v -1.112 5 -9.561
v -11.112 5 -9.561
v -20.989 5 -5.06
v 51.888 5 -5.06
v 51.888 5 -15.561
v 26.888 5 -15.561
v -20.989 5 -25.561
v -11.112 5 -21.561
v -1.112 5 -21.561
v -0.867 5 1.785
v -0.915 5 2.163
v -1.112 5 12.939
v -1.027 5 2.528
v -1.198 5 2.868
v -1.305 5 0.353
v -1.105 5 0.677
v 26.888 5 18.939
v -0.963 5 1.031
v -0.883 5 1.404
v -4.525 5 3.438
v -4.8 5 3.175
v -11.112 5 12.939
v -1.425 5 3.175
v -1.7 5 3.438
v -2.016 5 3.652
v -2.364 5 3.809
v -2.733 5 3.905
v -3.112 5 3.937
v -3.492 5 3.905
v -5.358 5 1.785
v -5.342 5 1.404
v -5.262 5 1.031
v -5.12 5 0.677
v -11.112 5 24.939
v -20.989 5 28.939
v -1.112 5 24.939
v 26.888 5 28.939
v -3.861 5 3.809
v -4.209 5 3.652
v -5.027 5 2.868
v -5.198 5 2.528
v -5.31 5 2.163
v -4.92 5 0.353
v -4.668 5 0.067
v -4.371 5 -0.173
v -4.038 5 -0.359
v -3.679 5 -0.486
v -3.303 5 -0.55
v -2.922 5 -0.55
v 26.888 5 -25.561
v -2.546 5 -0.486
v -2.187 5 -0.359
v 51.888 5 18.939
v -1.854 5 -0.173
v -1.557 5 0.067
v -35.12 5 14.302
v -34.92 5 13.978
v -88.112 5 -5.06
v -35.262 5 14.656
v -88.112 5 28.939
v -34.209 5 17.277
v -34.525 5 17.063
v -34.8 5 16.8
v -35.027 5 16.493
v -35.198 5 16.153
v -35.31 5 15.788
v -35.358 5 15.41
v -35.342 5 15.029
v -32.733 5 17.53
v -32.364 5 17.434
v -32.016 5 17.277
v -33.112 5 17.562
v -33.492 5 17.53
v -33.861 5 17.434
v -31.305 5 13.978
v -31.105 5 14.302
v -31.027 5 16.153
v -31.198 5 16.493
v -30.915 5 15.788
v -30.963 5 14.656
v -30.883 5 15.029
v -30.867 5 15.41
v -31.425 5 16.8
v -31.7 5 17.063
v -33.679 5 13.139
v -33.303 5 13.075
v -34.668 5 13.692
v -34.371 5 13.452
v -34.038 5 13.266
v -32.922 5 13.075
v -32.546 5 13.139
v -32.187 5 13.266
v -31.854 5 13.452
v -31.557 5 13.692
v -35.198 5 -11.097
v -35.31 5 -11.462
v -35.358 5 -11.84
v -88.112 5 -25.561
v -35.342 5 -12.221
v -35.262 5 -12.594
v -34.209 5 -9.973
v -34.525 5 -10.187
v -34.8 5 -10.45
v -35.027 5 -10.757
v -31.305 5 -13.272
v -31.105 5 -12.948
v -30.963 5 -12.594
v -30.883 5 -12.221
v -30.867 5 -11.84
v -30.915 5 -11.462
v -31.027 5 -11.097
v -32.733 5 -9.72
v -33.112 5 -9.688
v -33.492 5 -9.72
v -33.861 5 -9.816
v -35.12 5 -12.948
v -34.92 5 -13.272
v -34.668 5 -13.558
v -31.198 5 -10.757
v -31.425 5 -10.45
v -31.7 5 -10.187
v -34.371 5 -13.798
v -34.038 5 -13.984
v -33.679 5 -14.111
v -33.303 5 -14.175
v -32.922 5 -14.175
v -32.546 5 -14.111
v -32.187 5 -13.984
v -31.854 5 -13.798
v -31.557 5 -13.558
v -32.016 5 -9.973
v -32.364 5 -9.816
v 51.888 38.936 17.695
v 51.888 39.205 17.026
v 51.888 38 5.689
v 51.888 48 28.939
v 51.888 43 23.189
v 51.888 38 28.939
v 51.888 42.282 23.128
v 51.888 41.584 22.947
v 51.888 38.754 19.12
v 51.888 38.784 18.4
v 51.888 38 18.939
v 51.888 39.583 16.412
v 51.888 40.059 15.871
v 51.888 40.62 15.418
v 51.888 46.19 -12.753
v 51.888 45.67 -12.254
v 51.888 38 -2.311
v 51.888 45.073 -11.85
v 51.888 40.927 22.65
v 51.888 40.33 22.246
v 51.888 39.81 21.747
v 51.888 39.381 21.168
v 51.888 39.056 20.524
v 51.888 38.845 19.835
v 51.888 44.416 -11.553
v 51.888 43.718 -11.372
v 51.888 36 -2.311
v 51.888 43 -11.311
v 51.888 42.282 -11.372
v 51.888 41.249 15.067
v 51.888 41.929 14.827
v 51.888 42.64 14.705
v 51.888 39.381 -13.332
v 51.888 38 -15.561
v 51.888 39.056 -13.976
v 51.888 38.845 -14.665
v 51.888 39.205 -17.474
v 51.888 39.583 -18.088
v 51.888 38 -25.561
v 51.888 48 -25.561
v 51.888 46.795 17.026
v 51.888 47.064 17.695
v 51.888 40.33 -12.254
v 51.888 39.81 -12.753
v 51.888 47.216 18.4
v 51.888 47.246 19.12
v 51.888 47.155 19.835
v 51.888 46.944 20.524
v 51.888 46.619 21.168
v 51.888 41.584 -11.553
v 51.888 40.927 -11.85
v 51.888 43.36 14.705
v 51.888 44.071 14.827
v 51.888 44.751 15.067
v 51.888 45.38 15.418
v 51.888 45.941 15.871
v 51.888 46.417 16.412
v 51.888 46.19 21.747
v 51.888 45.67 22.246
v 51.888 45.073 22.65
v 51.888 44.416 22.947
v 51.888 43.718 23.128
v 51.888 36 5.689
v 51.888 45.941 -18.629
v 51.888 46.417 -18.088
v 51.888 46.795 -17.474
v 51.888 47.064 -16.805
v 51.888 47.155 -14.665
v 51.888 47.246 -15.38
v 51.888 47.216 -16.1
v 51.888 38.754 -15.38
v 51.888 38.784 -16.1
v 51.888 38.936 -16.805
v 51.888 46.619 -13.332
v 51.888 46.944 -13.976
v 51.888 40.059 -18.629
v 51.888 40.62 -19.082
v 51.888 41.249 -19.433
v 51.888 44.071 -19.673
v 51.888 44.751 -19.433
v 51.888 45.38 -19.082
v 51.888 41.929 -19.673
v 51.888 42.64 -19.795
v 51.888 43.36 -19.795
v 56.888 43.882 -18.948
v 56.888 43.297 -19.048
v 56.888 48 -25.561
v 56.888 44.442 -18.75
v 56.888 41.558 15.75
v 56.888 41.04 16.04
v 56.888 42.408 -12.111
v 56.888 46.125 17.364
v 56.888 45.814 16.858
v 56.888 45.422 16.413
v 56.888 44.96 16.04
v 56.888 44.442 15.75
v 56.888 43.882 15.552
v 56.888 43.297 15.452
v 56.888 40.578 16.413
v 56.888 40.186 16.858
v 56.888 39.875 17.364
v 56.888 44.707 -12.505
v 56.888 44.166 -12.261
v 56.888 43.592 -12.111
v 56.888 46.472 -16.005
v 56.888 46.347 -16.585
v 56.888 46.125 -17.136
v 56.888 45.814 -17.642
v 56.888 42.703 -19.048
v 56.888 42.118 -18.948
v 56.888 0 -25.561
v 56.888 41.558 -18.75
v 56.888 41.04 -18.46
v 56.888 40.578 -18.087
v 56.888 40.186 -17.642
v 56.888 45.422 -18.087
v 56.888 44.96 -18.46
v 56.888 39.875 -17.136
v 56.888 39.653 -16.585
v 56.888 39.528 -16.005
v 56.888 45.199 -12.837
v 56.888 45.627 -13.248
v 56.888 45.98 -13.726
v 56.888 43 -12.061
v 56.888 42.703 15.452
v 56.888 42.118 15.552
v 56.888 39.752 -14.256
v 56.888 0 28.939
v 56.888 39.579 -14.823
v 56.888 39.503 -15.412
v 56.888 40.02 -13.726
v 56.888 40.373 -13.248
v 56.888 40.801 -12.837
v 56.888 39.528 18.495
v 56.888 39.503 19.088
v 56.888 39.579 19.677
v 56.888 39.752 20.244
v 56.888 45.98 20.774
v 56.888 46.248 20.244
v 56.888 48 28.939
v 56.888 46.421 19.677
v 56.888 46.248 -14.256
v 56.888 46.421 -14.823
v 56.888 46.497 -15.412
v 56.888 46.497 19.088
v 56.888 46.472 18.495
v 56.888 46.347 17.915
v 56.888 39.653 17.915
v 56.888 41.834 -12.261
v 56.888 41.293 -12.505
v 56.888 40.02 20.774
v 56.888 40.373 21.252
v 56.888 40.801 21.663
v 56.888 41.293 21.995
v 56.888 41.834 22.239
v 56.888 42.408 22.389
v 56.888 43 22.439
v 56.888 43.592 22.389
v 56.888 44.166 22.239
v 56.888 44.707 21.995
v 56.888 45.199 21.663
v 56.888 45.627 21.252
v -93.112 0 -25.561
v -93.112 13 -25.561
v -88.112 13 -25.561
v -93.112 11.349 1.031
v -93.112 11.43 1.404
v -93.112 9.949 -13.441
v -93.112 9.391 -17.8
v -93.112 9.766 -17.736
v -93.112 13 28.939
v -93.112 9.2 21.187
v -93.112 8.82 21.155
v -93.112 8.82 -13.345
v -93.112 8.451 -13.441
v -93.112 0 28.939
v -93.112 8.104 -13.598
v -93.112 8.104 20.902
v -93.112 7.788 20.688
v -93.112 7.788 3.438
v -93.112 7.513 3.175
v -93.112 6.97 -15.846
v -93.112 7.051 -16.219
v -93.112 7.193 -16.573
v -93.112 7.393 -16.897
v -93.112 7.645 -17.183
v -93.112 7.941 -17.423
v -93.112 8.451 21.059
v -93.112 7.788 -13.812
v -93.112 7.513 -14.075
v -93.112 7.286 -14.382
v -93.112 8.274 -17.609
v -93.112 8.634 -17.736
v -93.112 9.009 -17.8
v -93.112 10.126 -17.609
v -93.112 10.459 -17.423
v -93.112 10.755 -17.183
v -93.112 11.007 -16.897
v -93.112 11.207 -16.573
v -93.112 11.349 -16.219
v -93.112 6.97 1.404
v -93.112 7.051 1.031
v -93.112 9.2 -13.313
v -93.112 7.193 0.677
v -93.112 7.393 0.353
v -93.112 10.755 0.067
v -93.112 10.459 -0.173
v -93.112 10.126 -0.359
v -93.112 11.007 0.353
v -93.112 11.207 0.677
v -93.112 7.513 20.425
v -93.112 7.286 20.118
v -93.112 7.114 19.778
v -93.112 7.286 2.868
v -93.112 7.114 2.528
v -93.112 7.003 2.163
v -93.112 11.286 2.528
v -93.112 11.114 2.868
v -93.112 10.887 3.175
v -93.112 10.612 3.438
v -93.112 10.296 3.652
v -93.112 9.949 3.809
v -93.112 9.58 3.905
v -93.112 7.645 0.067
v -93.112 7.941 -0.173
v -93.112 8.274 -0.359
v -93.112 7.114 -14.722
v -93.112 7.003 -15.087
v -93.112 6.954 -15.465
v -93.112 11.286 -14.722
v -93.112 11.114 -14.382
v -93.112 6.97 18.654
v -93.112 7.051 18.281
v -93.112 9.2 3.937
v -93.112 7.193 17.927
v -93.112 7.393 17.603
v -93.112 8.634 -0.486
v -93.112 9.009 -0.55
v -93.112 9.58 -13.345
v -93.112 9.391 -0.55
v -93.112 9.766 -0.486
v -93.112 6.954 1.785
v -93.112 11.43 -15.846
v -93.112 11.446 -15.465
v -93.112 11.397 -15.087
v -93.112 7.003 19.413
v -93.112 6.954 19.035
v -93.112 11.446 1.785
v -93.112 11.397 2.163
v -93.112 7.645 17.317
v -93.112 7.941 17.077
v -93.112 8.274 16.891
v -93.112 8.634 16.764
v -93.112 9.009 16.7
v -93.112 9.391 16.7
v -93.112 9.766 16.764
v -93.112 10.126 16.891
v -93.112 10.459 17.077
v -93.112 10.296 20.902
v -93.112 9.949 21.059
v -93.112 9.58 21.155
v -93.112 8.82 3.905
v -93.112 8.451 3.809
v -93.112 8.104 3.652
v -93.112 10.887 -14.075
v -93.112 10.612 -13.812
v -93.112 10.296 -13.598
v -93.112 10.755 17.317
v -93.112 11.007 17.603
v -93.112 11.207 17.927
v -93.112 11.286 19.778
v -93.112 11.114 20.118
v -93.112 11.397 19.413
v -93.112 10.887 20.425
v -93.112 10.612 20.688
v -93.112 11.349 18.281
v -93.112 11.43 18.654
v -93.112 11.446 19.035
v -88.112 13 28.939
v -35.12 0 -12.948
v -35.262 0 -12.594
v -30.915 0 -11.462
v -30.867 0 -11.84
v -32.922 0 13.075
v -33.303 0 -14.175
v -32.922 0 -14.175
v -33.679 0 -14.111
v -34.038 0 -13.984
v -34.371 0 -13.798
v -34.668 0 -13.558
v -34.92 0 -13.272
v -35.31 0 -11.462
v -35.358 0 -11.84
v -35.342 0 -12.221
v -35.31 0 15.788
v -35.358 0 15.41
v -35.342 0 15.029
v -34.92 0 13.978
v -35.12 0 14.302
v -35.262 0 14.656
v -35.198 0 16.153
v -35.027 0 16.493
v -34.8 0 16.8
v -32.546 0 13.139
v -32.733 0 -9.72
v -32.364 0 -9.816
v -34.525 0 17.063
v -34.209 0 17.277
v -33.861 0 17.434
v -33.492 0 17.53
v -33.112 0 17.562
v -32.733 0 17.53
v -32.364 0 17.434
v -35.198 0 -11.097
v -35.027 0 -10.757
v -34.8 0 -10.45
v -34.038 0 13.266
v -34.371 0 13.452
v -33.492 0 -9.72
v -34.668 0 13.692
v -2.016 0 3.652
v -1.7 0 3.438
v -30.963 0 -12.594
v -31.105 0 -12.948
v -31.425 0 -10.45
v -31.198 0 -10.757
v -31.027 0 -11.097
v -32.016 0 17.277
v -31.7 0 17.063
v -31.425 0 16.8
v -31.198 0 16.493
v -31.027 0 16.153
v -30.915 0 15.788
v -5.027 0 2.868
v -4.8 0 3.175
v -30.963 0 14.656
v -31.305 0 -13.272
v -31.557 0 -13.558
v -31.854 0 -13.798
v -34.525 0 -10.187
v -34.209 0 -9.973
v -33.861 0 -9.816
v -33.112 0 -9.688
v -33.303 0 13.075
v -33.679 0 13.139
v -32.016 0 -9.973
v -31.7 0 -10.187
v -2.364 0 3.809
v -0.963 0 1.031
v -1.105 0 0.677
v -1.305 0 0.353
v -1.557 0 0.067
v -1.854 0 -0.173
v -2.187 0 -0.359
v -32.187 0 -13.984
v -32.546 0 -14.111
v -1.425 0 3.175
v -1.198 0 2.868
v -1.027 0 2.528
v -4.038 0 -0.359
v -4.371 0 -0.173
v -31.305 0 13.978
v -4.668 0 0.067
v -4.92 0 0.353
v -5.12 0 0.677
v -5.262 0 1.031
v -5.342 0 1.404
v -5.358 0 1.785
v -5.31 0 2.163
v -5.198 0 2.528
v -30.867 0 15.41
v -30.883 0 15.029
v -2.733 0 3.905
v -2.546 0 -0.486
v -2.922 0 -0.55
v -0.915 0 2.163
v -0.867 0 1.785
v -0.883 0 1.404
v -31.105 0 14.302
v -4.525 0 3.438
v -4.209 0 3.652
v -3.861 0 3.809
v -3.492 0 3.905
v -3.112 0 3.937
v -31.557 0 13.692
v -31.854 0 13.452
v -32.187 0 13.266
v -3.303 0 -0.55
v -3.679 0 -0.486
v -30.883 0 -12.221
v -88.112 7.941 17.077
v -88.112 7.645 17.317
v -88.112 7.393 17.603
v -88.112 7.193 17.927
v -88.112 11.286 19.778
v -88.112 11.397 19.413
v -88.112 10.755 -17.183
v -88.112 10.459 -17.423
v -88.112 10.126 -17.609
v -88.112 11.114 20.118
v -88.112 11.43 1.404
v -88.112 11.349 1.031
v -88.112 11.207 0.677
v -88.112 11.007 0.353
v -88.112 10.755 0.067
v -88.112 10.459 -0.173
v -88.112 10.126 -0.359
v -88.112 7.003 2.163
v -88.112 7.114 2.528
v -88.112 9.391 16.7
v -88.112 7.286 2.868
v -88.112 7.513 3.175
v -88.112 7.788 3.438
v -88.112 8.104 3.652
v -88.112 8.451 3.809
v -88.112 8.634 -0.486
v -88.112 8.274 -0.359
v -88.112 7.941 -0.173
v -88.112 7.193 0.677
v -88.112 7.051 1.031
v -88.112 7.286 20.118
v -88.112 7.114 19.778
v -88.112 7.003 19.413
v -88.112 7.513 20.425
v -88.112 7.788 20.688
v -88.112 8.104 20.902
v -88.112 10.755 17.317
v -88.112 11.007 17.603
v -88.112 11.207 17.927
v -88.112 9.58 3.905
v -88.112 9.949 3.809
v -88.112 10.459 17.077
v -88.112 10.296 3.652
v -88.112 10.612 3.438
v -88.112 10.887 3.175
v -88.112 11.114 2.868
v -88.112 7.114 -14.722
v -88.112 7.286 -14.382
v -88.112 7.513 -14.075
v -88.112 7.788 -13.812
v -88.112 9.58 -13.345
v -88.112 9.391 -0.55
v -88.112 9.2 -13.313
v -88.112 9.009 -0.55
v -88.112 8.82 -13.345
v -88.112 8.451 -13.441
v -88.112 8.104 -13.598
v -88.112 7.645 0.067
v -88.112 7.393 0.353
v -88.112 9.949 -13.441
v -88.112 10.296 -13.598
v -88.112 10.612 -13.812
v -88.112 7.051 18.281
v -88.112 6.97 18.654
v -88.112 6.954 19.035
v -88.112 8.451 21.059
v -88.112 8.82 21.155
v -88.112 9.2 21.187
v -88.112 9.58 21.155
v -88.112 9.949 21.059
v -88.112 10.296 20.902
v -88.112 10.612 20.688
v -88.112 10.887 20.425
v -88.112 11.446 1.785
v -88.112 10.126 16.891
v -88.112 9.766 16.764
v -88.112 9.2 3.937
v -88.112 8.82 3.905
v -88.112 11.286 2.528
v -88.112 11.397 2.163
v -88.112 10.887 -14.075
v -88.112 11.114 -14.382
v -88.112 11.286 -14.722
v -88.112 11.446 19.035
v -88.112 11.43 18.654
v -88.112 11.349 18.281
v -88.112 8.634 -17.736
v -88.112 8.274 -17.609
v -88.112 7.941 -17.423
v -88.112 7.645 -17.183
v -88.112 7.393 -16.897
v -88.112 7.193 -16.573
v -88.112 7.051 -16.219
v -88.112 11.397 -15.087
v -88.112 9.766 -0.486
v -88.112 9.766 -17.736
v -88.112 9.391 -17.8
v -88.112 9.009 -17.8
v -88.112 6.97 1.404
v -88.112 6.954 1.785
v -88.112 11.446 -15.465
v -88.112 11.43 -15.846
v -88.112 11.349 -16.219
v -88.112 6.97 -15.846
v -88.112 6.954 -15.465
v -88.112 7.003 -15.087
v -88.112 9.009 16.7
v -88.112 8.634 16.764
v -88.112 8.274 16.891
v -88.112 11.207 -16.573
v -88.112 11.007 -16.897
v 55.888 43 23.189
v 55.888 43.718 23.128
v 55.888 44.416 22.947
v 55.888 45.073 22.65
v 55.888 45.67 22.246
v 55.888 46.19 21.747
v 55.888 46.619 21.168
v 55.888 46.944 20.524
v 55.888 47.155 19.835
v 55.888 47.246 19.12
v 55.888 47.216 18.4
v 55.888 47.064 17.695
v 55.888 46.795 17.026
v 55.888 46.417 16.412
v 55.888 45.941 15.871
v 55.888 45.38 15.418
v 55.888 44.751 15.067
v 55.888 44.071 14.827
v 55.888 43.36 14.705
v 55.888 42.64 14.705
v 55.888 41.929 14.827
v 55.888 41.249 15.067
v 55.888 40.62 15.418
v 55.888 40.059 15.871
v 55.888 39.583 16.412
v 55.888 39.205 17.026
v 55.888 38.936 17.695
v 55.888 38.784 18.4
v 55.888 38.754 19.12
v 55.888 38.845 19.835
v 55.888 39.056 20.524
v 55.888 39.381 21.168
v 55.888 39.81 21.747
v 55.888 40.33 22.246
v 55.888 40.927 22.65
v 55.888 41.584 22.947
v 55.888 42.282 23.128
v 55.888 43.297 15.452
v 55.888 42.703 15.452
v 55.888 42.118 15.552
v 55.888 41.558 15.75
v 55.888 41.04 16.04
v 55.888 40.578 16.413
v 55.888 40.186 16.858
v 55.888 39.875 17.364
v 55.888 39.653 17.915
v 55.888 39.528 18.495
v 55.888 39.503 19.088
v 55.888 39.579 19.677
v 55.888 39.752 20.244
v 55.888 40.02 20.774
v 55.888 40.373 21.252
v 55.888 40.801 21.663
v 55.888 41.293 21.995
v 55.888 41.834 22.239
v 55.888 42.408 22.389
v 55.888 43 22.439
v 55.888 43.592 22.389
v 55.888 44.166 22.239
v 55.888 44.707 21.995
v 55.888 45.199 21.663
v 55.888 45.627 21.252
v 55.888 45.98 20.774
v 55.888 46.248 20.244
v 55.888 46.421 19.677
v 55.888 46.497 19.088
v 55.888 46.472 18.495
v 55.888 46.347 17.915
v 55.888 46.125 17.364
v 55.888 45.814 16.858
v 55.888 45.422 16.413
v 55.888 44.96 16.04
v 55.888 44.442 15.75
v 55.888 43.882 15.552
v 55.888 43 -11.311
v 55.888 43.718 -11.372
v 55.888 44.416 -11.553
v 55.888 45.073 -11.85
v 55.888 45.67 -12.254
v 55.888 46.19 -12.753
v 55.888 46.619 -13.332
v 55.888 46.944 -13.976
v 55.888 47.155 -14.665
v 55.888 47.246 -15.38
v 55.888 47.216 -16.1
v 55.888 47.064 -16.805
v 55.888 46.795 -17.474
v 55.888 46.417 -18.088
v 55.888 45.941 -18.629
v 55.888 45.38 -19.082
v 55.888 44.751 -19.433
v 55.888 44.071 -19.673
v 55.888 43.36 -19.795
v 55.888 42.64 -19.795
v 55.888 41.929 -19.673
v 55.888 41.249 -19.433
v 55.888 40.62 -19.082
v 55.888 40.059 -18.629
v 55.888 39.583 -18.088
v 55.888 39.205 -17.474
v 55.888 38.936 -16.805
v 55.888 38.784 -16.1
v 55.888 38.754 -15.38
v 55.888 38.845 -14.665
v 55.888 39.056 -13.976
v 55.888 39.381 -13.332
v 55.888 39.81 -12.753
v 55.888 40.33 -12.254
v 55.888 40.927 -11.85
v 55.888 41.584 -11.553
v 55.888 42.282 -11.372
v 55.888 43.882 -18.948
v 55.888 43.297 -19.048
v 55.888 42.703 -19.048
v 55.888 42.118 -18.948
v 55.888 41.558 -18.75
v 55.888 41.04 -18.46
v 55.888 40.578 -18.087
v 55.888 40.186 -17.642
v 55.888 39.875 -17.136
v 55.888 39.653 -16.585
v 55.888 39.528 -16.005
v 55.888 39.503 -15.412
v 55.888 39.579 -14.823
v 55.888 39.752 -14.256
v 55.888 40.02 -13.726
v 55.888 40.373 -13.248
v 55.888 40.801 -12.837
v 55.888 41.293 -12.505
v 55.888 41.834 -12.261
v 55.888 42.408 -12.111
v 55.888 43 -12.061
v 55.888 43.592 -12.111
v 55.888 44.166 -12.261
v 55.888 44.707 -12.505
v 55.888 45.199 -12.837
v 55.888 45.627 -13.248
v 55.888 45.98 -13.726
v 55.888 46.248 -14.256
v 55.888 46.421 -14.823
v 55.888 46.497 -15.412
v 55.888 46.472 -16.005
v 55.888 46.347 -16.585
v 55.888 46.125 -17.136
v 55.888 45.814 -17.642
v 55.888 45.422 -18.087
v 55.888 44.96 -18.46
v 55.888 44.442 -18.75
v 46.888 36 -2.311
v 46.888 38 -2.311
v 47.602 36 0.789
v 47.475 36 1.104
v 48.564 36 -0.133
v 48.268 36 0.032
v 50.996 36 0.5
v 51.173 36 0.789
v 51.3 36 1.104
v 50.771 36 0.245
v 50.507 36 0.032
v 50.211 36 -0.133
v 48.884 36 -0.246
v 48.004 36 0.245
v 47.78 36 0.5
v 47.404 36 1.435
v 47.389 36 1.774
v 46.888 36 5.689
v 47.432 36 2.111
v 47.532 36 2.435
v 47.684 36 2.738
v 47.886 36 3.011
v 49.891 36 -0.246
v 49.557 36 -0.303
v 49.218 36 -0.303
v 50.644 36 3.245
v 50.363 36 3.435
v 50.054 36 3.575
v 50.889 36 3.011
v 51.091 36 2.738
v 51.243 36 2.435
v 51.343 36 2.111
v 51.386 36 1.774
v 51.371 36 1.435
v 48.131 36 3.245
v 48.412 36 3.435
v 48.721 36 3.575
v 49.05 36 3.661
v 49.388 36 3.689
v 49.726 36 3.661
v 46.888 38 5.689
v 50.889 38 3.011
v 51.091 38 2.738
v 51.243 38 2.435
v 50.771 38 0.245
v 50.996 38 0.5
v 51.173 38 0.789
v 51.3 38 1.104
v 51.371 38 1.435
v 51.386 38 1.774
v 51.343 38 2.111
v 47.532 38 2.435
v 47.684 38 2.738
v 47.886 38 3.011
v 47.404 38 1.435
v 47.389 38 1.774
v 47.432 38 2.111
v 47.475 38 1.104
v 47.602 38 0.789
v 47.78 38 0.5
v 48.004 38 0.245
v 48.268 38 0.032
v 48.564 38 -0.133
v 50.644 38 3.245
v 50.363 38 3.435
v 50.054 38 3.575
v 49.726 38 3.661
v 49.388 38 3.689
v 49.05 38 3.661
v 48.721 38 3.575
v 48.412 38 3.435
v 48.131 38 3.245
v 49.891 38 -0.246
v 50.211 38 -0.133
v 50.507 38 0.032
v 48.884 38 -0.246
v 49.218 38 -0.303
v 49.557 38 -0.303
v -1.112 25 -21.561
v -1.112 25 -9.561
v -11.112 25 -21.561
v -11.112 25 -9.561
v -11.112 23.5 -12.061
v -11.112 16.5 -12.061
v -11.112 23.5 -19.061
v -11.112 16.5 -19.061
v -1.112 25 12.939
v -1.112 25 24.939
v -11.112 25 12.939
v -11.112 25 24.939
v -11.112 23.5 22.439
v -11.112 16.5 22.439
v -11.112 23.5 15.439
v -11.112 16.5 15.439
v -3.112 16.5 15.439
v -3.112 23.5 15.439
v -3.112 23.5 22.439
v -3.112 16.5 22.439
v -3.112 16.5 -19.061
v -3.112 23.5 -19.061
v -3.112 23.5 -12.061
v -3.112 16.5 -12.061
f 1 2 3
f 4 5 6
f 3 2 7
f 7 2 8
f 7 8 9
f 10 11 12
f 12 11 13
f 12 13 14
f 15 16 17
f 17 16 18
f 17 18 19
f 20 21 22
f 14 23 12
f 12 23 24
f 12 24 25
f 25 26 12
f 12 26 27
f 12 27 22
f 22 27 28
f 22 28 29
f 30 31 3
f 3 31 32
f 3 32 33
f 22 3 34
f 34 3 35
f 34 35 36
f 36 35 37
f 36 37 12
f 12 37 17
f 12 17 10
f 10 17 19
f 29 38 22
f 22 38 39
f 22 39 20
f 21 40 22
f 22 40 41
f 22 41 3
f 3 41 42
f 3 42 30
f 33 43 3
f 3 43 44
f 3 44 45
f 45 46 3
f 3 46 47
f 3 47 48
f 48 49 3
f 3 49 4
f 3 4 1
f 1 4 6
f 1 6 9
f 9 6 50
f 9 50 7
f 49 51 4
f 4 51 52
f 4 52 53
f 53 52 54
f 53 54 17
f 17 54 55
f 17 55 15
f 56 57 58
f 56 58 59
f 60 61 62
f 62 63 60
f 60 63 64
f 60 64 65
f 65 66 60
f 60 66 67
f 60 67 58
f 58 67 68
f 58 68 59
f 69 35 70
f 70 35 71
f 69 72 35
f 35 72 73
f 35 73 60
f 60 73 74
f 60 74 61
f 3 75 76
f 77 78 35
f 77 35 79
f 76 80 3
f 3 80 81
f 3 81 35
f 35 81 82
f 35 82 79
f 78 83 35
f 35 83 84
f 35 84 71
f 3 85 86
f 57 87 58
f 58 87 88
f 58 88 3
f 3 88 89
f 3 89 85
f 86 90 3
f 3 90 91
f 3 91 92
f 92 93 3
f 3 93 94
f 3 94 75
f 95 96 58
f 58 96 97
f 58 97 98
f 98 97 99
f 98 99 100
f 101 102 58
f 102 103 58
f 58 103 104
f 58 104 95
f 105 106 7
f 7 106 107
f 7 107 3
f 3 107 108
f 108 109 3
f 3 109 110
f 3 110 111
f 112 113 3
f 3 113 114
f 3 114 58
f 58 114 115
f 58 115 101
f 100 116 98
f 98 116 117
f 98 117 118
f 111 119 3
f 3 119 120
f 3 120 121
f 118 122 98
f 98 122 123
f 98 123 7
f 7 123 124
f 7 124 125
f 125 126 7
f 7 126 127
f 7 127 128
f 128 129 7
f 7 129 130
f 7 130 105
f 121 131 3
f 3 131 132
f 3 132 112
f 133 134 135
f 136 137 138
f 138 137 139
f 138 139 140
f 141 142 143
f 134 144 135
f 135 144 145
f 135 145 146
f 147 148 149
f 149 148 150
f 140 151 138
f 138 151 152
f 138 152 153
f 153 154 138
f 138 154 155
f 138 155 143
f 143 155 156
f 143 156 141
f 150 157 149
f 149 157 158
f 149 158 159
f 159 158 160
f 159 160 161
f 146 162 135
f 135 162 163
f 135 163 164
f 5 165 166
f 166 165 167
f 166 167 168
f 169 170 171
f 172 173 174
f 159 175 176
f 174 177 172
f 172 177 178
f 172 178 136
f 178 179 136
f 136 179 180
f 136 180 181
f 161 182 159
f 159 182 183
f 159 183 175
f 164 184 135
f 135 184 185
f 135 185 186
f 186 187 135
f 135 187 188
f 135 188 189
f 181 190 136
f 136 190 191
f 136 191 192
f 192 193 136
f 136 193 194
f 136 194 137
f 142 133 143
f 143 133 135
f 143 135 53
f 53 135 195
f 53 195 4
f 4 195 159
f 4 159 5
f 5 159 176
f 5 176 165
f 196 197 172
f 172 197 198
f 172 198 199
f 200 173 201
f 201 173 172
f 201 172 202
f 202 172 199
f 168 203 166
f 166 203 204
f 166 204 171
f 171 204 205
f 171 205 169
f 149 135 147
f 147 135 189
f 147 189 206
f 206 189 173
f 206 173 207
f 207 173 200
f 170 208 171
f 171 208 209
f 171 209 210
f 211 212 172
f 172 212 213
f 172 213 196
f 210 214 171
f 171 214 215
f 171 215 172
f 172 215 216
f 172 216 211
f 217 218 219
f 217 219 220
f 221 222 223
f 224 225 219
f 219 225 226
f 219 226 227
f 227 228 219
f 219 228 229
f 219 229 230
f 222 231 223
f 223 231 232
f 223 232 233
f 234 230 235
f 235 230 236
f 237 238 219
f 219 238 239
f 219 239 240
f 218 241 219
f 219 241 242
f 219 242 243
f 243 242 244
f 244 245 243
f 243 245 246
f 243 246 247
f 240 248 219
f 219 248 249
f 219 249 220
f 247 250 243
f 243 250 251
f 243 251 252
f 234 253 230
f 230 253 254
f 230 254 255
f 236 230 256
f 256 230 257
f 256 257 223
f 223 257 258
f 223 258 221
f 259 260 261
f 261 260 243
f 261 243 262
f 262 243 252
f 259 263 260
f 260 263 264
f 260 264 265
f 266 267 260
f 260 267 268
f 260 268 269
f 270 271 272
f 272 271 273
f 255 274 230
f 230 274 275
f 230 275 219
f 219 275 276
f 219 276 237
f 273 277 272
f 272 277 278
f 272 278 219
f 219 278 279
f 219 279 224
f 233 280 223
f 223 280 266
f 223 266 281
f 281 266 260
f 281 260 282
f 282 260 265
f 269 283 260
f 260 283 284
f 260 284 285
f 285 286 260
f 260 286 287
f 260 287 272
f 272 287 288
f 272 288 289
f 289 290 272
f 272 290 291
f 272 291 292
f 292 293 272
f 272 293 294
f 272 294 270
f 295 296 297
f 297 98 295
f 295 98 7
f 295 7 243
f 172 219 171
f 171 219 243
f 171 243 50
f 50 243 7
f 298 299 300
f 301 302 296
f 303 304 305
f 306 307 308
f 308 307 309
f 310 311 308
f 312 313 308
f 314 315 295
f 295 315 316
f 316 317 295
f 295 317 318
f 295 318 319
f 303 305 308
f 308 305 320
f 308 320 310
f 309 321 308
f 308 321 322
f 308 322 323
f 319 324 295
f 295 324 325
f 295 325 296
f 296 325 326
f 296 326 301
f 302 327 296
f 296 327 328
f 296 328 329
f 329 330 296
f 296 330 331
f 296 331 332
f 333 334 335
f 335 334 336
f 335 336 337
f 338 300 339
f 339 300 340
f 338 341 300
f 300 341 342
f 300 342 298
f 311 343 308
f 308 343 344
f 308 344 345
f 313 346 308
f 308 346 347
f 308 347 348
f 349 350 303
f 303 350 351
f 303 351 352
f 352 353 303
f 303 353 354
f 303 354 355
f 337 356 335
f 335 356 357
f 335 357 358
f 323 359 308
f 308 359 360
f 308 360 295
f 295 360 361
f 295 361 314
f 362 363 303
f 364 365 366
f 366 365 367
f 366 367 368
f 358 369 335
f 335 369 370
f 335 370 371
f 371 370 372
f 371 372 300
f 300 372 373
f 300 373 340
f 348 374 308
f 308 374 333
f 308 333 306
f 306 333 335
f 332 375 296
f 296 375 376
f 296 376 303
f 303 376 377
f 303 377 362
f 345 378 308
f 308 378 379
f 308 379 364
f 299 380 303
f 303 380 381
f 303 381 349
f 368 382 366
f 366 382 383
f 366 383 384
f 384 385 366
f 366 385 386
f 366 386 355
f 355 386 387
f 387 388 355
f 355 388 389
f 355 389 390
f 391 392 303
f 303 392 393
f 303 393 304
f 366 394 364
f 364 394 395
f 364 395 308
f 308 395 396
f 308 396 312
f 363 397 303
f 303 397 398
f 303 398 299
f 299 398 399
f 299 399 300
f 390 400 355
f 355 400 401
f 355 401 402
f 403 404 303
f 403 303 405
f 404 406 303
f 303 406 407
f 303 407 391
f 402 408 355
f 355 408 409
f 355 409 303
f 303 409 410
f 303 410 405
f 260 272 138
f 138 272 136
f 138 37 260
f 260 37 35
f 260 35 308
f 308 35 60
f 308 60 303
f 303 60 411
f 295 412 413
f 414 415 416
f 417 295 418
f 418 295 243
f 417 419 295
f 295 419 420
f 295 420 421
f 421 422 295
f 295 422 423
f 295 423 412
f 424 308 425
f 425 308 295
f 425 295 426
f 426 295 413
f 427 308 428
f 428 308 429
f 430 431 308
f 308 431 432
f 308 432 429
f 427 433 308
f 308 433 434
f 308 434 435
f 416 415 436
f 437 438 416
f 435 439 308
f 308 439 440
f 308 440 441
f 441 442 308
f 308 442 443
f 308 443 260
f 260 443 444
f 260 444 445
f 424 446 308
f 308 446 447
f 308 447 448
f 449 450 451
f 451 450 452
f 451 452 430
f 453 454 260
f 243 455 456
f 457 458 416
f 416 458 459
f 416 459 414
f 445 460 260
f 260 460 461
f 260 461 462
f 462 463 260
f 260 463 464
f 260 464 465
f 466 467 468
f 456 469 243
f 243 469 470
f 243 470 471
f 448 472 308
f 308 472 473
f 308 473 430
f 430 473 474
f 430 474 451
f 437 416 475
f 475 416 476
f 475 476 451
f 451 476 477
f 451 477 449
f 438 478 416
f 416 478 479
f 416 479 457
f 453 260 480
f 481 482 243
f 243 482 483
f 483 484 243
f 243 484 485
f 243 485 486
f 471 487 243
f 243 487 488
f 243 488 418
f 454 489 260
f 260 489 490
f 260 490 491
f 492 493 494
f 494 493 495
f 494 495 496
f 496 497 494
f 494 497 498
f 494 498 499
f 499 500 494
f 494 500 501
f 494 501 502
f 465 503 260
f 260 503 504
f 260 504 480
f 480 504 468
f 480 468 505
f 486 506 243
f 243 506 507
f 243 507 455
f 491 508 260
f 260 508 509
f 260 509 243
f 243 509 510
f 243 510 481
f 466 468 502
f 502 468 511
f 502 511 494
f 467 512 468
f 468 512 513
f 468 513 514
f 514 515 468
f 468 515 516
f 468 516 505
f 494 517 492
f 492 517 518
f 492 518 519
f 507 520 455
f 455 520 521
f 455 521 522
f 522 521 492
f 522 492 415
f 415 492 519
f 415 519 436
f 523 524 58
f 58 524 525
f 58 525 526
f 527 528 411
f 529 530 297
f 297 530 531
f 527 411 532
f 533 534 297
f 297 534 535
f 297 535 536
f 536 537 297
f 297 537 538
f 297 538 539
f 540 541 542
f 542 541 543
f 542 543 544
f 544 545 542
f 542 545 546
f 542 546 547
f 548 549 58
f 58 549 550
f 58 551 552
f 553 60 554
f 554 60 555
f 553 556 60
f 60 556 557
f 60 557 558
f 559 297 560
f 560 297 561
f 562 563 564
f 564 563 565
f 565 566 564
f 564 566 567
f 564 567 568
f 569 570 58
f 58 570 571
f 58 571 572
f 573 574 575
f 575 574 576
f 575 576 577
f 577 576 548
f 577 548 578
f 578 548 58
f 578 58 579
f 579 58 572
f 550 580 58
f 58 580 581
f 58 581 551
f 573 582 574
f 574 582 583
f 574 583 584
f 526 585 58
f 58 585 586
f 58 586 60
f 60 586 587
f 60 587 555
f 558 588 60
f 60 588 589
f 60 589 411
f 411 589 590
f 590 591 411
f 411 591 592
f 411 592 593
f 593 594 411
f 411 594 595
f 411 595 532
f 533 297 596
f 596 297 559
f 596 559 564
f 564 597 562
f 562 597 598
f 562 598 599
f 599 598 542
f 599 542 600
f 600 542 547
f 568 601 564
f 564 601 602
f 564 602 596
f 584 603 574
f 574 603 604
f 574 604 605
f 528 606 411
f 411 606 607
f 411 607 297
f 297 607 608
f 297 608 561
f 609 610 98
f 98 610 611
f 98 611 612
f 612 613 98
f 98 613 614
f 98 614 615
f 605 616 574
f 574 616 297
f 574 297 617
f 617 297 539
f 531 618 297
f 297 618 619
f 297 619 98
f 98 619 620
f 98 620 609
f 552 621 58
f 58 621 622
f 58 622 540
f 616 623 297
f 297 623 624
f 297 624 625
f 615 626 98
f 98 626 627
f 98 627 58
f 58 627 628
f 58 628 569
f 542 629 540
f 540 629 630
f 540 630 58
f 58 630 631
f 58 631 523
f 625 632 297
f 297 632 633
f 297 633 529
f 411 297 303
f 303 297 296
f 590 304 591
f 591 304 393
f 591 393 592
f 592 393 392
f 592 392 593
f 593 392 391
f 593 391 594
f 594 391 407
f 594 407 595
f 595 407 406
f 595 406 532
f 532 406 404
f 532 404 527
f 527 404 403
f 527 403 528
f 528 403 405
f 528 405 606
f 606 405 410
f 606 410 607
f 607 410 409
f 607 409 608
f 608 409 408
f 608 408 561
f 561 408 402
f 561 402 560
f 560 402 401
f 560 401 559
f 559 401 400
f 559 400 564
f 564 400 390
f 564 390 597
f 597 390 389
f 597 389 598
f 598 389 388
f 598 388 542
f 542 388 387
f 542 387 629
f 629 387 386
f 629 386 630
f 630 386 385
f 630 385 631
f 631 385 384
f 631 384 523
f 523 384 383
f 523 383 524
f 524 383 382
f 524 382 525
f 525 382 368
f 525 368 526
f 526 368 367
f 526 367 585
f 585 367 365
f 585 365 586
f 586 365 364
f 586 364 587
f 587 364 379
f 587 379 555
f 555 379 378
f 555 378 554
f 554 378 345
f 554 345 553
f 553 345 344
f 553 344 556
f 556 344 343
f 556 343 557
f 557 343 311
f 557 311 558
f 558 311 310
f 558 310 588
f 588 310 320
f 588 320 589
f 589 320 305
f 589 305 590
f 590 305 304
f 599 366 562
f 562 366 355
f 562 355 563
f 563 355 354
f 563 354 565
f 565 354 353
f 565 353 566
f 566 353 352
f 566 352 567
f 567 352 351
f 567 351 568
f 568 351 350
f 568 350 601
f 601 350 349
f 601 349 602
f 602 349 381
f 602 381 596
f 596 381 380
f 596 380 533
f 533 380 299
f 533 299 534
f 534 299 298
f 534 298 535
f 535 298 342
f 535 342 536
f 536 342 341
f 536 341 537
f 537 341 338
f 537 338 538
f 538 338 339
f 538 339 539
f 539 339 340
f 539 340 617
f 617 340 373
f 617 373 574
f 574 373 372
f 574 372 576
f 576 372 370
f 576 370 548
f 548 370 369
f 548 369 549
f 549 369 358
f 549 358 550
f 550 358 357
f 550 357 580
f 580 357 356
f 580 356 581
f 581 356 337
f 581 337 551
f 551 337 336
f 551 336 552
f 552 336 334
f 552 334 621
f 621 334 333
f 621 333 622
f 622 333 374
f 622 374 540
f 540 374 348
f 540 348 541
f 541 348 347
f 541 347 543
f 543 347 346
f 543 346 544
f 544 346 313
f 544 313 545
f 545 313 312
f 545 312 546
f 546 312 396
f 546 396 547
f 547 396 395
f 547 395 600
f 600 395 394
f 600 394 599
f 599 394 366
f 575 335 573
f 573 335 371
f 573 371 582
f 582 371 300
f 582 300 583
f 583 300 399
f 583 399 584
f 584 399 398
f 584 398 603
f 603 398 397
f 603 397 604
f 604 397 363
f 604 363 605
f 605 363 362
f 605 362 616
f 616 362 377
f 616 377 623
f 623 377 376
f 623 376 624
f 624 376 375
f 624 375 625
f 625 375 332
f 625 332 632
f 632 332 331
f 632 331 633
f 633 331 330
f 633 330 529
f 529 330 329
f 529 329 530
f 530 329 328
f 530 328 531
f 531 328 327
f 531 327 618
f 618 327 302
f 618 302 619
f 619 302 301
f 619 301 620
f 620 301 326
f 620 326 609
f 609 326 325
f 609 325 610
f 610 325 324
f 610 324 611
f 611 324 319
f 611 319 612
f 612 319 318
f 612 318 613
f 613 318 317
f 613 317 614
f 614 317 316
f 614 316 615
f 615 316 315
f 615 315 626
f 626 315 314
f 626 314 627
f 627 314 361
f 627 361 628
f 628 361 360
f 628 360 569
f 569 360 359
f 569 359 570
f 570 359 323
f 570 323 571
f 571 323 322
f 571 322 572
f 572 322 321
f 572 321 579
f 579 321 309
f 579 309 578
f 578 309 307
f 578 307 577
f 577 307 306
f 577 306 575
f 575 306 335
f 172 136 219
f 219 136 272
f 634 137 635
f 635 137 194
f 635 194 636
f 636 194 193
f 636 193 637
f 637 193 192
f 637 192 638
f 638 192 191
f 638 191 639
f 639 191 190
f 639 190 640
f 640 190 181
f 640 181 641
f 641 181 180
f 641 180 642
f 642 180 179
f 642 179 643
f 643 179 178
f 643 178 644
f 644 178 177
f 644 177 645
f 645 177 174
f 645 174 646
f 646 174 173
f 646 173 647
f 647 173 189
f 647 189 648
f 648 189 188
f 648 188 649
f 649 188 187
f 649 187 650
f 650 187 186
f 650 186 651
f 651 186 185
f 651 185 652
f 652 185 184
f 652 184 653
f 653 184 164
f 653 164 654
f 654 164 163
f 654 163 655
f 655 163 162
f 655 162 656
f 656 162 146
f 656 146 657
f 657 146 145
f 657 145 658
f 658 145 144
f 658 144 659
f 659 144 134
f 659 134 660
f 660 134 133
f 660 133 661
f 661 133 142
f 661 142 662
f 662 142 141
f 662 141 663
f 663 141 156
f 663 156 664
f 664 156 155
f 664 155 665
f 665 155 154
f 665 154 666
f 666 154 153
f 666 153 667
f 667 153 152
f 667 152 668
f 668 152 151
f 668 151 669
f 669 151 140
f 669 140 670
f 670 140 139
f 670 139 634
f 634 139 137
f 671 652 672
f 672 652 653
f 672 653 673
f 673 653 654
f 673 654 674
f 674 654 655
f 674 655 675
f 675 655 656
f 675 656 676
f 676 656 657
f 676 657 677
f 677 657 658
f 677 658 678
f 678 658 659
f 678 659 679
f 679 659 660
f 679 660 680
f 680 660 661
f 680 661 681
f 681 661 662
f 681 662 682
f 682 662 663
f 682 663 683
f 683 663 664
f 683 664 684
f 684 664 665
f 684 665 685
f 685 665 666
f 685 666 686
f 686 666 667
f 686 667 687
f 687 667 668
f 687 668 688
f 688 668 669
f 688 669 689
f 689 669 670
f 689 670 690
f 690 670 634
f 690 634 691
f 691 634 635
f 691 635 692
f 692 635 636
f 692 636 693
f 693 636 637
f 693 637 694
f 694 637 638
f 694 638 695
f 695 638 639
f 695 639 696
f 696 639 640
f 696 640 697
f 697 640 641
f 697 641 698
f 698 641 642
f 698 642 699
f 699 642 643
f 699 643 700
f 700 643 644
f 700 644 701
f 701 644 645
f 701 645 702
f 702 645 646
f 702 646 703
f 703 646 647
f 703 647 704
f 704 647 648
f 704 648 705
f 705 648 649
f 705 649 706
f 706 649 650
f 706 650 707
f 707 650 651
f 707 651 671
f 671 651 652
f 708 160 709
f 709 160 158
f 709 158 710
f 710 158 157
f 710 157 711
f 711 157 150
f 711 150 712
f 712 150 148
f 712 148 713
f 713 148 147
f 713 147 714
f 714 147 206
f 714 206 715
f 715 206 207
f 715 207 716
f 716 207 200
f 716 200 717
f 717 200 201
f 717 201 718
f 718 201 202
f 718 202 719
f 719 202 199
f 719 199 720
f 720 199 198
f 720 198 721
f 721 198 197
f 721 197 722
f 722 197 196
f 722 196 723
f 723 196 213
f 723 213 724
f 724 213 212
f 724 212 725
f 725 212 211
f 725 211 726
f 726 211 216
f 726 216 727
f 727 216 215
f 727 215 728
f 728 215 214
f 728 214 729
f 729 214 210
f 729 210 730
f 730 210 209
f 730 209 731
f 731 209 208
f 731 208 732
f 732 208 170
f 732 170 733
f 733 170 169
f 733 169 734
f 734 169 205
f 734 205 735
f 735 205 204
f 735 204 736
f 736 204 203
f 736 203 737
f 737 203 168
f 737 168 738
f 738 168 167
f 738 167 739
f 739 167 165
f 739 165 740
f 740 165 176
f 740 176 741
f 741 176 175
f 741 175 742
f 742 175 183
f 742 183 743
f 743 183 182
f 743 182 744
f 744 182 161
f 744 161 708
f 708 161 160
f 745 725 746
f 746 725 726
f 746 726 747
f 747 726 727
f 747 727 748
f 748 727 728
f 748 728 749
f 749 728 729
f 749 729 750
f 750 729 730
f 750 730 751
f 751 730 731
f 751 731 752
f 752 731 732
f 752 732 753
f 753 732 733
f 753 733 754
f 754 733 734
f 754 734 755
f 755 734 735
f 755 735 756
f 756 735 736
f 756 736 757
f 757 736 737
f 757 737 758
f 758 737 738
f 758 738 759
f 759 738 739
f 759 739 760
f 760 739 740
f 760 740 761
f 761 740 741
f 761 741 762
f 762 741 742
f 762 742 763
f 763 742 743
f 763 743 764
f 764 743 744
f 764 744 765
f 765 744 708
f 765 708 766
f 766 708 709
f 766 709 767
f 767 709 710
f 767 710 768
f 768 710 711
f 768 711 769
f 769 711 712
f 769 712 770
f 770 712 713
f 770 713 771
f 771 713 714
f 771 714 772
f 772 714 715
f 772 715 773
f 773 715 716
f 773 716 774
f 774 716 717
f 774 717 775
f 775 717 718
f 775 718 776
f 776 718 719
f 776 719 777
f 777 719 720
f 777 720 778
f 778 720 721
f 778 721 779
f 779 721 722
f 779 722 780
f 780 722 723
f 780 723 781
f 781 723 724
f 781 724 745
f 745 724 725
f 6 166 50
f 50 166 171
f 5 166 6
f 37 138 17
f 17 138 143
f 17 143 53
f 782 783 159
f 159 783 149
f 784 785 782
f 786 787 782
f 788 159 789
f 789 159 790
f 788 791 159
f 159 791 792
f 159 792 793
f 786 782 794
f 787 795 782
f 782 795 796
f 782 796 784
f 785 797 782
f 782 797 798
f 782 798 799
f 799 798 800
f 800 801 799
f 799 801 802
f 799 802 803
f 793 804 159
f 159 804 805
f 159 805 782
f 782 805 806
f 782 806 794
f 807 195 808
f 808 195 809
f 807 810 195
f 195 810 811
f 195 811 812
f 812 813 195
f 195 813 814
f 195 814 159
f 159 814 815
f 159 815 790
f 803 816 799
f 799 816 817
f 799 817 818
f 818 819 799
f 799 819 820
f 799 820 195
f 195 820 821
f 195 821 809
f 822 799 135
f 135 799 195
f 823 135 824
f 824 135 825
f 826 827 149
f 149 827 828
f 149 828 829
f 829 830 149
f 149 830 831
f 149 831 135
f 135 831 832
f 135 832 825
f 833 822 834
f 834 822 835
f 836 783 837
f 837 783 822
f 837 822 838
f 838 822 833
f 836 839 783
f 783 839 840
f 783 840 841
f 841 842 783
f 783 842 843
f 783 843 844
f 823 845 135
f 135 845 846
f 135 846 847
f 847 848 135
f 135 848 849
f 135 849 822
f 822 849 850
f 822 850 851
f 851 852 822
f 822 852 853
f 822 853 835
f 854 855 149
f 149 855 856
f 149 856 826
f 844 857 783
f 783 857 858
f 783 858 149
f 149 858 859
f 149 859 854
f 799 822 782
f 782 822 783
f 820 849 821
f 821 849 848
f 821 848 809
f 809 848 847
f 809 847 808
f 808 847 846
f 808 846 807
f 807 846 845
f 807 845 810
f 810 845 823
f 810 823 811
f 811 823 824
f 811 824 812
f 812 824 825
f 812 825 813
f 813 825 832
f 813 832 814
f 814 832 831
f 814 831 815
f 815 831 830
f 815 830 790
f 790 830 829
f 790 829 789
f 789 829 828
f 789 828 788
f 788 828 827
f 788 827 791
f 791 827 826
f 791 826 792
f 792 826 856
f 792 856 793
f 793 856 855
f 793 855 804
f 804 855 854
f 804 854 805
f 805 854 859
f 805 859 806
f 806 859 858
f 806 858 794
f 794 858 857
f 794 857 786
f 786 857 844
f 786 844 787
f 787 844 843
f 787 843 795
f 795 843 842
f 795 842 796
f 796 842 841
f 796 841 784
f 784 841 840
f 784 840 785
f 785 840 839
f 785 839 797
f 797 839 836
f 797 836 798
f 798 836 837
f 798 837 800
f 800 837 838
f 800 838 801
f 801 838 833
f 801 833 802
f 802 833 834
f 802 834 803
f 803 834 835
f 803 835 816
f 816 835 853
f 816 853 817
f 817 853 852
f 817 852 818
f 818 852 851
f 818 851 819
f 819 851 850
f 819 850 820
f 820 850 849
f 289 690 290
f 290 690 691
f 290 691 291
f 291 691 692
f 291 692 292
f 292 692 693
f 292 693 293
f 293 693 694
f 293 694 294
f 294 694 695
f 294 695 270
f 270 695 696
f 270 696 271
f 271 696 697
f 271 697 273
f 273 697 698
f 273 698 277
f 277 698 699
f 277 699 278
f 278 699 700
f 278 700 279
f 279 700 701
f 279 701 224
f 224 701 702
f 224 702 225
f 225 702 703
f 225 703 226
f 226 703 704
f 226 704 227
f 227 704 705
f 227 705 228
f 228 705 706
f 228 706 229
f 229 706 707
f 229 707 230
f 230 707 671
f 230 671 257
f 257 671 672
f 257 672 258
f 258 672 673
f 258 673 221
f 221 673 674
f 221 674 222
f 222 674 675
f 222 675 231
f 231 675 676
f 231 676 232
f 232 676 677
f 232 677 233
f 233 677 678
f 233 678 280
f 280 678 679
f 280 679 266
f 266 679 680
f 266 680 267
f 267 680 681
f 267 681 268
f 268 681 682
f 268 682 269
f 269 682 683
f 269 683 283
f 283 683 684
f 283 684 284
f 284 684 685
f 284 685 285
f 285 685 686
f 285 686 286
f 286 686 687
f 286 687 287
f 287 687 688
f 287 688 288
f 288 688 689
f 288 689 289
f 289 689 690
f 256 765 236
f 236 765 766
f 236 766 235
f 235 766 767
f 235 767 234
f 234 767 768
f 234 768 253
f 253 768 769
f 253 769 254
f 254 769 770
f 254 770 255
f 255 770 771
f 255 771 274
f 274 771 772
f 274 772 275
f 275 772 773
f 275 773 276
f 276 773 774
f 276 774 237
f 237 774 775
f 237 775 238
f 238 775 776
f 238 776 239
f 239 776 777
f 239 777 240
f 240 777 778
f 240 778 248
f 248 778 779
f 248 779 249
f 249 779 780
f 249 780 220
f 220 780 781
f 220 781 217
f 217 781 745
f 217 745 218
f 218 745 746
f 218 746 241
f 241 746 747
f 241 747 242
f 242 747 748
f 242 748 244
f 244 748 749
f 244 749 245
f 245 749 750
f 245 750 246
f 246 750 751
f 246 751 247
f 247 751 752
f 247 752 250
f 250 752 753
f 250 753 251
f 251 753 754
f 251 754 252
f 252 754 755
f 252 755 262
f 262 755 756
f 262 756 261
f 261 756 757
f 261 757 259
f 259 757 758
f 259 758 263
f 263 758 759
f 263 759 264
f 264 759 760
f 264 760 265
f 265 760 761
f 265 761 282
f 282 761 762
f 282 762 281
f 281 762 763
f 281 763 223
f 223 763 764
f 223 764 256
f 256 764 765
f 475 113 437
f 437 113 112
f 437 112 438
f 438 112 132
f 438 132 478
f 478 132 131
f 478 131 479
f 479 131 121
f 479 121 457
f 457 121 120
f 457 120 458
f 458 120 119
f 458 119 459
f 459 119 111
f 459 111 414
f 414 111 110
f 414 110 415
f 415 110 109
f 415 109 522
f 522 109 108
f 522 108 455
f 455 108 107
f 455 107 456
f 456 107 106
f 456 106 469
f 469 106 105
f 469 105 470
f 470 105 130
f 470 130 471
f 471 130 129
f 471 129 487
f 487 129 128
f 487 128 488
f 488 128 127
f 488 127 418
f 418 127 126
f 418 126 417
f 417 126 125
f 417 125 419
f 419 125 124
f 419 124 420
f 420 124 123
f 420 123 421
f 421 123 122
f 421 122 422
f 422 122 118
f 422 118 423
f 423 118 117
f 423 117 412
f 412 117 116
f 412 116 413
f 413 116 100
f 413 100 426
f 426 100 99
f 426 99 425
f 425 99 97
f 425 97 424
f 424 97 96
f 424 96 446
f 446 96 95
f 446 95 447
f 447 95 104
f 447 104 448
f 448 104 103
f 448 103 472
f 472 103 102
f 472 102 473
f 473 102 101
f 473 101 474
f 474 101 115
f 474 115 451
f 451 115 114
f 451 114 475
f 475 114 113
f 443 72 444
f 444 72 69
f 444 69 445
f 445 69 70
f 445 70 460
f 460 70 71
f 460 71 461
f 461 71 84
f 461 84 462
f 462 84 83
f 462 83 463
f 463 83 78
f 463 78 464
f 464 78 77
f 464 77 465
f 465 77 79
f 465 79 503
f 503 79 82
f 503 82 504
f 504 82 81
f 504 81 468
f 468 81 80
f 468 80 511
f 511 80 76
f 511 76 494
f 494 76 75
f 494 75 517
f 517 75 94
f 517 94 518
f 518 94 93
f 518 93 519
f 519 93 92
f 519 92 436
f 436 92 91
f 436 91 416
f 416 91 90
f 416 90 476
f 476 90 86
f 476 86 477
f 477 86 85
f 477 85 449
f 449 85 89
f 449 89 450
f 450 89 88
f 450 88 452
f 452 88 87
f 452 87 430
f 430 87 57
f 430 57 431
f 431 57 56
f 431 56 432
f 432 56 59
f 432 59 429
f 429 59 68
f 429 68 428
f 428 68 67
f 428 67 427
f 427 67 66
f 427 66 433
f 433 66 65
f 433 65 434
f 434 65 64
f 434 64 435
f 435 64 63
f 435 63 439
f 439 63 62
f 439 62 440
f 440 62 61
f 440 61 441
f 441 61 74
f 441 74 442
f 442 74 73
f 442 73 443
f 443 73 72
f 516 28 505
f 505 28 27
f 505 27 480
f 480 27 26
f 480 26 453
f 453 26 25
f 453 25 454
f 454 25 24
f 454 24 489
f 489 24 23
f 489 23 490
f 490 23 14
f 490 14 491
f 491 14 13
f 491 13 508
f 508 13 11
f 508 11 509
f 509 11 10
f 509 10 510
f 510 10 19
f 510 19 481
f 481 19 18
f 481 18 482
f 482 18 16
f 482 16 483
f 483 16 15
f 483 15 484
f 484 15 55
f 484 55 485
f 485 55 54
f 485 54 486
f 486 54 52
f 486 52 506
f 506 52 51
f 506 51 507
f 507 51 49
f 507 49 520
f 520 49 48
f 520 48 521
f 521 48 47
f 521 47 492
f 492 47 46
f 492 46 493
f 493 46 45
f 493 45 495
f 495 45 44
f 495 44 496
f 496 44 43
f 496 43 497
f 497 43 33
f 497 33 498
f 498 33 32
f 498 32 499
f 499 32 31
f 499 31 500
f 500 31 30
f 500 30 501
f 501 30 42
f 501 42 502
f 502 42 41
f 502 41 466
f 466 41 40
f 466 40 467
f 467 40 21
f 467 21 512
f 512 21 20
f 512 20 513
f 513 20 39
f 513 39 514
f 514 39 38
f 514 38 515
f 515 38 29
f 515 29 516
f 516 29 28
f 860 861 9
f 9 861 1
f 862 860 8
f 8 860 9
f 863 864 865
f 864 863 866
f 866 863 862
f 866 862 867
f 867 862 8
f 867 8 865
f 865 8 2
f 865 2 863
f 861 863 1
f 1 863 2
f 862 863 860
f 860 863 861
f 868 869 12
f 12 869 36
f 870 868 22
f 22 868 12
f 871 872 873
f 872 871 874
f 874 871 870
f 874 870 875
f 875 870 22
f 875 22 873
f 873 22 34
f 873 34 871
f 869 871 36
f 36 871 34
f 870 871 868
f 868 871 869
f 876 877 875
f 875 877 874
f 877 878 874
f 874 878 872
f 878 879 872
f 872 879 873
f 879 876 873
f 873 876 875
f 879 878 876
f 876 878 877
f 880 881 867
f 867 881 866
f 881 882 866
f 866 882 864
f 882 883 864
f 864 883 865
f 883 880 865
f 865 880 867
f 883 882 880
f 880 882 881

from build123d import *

# Parameters (mm, degrees)
SKETCH1_W                 = 150
SKETCH1_H                 = 54.5
BOSS_EXTRUDE1_DEPTH       = 5
SKETCH2_W                 = 5
SKETCH2_H                 = 54.5
BOSS_EXTRUDE2_DEPTH       = 8
F_8_CLEARANCE_HOLE1_D     = 4.4958
F_8_CLEARANCE_HOLE1_DEPTH = 17
F_8_CLEARANCE_HOLE1_TIP   = 1.350674586
SKETCH7_W                 = 5
SKETCH7_H                 = 54.5
BOSS_EXTRUDE3_DEPTH       = 43
SKETCH8_R                 = 4.25
CUT_EXTRUDE1_DEPTH        = 4
RIB1_REACH                = 120.085
SKETCH10_WALL_W           = 279.571445908
SKETCH10_WALL_H           = 10
RIB3_REACH                = 120.085
SKETCH12_WALL_W           = 279.571445908
SKETCH12_WALL_H           = 10
SKETCH13_W                = 8
SKETCH13_H                = 2
BOSS_EXTRUDE4_DEPTH       = 5
SKETCH14_R                = 2
CUT_EXTRUDE2_DEPTH        = 2
SKETCH15_R                = 3.5
CUT_EXTRUDE3_DEPTH        = 1
F_8_CLEARANCE_HOLE2_D     = 4.4958
F_8_CLEARANCE_HOLE2_DEPTH = 17
F_8_CLEARANCE_HOLE2_TIP   = 1.350674586
SKETCH16_W                = 10
SKETCH16_H                = 12
BOSS_EXTRUDE5_DEPTH       = 20
SKETCH18_W                = 7
SKETCH18_H                = 7
CUT_EXTRUDE4_DEPTH        = 8


with BuildPart() as part:
    # Sketch1 → Boss-Extrude1 (new body)
    with BuildSketch(Plane(origin=(0, 0, 0), x_dir=(1, 0, 0), z_dir=(0, 1, 0))):
        with Locations((-18.112463826, -1.689393939)):
            Rectangle(SKETCH1_W, SKETCH1_H)
    extrude(amount=BOSS_EXTRUDE1_DEPTH)

    # Sketch2 → Boss-Extrude2 (add)
    with BuildSketch(Plane(origin=(0, 5, 0), x_dir=(1, 0, 0), z_dir=(0, 1, 0))):
        with Locations((-90.612463826, -1.689393939)):
            Rectangle(SKETCH2_W, SKETCH2_H)
    extrude(amount=BOSS_EXTRUDE2_DEPTH)

    # #8 Clearance Hole1
    with Locations(Plane(origin=(-93.112463826, 9.2, -15.560606061), x_dir=(0, 0, -1), z_dir=(-1, 0, 0))):
        with Locations((0, 0), (-17.25, 0), (-34.5, 0)):
            Hole(F_8_CLEARANCE_HOLE1_D / 2, depth=F_8_CLEARANCE_HOLE1_DEPTH)
            with Locations((0, 0, -(F_8_CLEARANCE_HOLE1_DEPTH + F_8_CLEARANCE_HOLE1_TIP / 2))):  # 118° drill point
                Cone(0, F_8_CLEARANCE_HOLE1_D / 2, F_8_CLEARANCE_HOLE1_TIP, mode=Mode.SUBTRACT)

    # Sketch7 → Boss-Extrude3 (add)
    with BuildSketch(Plane(origin=(0, 5, 0), x_dir=(1, 0, 0), z_dir=(0, 1, 0))):
        with Locations((54.387536174, -1.689393939)):
            Rectangle(SKETCH7_W, SKETCH7_H)
    extrude(amount=BOSS_EXTRUDE3_DEPTH)

    # Sketch8 → Cut-Extrude1 (cut)
    with BuildSketch(Plane.ZY.offset(-51.887536174)):
        with Locations((-15.560606061, 43)):
            Circle(SKETCH8_R)
        with Locations((18.939393939, 43)):
            Circle(SKETCH8_R)
    extrude(amount=-CUT_EXTRUDE1_DEPTH, mode=Mode.SUBTRACT)

    # Sketch10 wall → Rib1 (add, up to next)
    with BuildSketch(Plane(origin=(39.387536174, 21.5, -25.560606061), x_dir=(-0.603857687995, -0.797092148154, 0), z_dir=(-0.797092148154, 0.603857687995, 0)), mode=Mode.PRIVATE) as rib1_sk1:
        with Locations((0, 5)):
            Rectangle(SKETCH10_WALL_W, SKETCH10_WALL_H)
    rib1_tool1 = extrude(rib1_sk1.sketch, amount=-RIB1_REACH, mode=Mode.PRIVATE) - part.part
    add(rib1_tool1.solids().sort_by_distance((39.387536174, 21.5, -25.560606061))[0])

    # Sketch12 wall → Rib3 (add, up to next)
    with BuildSketch(Plane(origin=(39.387536174, 21.5, 28.939393939), x_dir=(-0.603857687995, -0.797092148154, 0), z_dir=(0.797092148154, -0.603857687995, 0)), mode=Mode.PRIVATE) as rib3_sk1:
        with Locations((0, 5)):
            Rectangle(SKETCH12_WALL_W, SKETCH12_WALL_H)
    rib3_tool1 = extrude(rib3_sk1.sketch, amount=RIB3_REACH, mode=Mode.PRIVATE) - part.part
    add(rib3_tool1.solids().sort_by_distance((39.387536174, 21.5, 28.939393939))[0])

    # Sketch13 → Boss-Extrude4 (add)
    with BuildSketch(Plane.ZY.offset(-51.887536174)):
        with Locations((1.689393939, 37)):
            Rectangle(SKETCH13_W, SKETCH13_H)
    extrude(amount=BOSS_EXTRUDE4_DEPTH)

    # Sketch14 → Cut-Extrude2 (cut)
    with BuildSketch(Plane(origin=(0, 38, 0), x_dir=(1, 0, 0), z_dir=(0, 1, 0))):
        with Locations(Location((49.387536174, -1.689393939, 0), (0, 0, 270))):
            Circle(SKETCH14_R)
    extrude(amount=-CUT_EXTRUDE2_DEPTH, mode=Mode.SUBTRACT)

    # Sketch15 → Cut-Extrude3 (cut)
    with BuildSketch(Plane.ZY.offset(-55.887536174)):
        with Locations((-15.560606061, 43)):
            Circle(SKETCH15_R)
        with Locations((18.939393939, 43)):
            Circle(SKETCH15_R)
    extrude(amount=-CUT_EXTRUDE3_DEPTH, mode=Mode.SUBTRACT)

    # #8 Clearance Hole2
    with Locations(Plane(origin=(-3.112463826, 5, 1.689393939), x_dir=(0, 0, 1), z_dir=(0, 1, 0))):
        with Locations((0, 0), (13.625, -30), (-13.625, -30)):
            Hole(F_8_CLEARANCE_HOLE2_D / 2, depth=F_8_CLEARANCE_HOLE2_DEPTH)
            with Locations((0, 0, -(F_8_CLEARANCE_HOLE2_DEPTH + F_8_CLEARANCE_HOLE2_TIP / 2))):  # 118° drill point
                Cone(0, F_8_CLEARANCE_HOLE2_D / 2, F_8_CLEARANCE_HOLE2_TIP, mode=Mode.SUBTRACT)

    # Sketch16 → Boss-Extrude5 (add)
    with BuildSketch(Plane(origin=(0, 5, 0), x_dir=(1, 0, 0), z_dir=(0, 1, 0))):
        with Locations((-6.112463826, 15.560606061)):
            Rectangle(SKETCH16_W, SKETCH16_H)
        with Locations((-6.112463826, -18.939393939)):
            Rectangle(SKETCH16_W, SKETCH16_H)
    extrude(amount=BOSS_EXTRUDE5_DEPTH)

    # Sketch18 → Cut-Extrude4 (cut)
    with BuildSketch(Plane.ZY.offset(11.112463826)):
        with Locations((-15.560606061, 20)):
            Rectangle(SKETCH18_W, SKETCH18_H)
        with Locations((18.939393939, 20)):
            Rectangle(SKETCH18_W, SKETCH18_H)
    extrude(amount=-CUT_EXTRUDE4_DEPTH, mode=Mode.SUBTRACT)


solid = part.part
